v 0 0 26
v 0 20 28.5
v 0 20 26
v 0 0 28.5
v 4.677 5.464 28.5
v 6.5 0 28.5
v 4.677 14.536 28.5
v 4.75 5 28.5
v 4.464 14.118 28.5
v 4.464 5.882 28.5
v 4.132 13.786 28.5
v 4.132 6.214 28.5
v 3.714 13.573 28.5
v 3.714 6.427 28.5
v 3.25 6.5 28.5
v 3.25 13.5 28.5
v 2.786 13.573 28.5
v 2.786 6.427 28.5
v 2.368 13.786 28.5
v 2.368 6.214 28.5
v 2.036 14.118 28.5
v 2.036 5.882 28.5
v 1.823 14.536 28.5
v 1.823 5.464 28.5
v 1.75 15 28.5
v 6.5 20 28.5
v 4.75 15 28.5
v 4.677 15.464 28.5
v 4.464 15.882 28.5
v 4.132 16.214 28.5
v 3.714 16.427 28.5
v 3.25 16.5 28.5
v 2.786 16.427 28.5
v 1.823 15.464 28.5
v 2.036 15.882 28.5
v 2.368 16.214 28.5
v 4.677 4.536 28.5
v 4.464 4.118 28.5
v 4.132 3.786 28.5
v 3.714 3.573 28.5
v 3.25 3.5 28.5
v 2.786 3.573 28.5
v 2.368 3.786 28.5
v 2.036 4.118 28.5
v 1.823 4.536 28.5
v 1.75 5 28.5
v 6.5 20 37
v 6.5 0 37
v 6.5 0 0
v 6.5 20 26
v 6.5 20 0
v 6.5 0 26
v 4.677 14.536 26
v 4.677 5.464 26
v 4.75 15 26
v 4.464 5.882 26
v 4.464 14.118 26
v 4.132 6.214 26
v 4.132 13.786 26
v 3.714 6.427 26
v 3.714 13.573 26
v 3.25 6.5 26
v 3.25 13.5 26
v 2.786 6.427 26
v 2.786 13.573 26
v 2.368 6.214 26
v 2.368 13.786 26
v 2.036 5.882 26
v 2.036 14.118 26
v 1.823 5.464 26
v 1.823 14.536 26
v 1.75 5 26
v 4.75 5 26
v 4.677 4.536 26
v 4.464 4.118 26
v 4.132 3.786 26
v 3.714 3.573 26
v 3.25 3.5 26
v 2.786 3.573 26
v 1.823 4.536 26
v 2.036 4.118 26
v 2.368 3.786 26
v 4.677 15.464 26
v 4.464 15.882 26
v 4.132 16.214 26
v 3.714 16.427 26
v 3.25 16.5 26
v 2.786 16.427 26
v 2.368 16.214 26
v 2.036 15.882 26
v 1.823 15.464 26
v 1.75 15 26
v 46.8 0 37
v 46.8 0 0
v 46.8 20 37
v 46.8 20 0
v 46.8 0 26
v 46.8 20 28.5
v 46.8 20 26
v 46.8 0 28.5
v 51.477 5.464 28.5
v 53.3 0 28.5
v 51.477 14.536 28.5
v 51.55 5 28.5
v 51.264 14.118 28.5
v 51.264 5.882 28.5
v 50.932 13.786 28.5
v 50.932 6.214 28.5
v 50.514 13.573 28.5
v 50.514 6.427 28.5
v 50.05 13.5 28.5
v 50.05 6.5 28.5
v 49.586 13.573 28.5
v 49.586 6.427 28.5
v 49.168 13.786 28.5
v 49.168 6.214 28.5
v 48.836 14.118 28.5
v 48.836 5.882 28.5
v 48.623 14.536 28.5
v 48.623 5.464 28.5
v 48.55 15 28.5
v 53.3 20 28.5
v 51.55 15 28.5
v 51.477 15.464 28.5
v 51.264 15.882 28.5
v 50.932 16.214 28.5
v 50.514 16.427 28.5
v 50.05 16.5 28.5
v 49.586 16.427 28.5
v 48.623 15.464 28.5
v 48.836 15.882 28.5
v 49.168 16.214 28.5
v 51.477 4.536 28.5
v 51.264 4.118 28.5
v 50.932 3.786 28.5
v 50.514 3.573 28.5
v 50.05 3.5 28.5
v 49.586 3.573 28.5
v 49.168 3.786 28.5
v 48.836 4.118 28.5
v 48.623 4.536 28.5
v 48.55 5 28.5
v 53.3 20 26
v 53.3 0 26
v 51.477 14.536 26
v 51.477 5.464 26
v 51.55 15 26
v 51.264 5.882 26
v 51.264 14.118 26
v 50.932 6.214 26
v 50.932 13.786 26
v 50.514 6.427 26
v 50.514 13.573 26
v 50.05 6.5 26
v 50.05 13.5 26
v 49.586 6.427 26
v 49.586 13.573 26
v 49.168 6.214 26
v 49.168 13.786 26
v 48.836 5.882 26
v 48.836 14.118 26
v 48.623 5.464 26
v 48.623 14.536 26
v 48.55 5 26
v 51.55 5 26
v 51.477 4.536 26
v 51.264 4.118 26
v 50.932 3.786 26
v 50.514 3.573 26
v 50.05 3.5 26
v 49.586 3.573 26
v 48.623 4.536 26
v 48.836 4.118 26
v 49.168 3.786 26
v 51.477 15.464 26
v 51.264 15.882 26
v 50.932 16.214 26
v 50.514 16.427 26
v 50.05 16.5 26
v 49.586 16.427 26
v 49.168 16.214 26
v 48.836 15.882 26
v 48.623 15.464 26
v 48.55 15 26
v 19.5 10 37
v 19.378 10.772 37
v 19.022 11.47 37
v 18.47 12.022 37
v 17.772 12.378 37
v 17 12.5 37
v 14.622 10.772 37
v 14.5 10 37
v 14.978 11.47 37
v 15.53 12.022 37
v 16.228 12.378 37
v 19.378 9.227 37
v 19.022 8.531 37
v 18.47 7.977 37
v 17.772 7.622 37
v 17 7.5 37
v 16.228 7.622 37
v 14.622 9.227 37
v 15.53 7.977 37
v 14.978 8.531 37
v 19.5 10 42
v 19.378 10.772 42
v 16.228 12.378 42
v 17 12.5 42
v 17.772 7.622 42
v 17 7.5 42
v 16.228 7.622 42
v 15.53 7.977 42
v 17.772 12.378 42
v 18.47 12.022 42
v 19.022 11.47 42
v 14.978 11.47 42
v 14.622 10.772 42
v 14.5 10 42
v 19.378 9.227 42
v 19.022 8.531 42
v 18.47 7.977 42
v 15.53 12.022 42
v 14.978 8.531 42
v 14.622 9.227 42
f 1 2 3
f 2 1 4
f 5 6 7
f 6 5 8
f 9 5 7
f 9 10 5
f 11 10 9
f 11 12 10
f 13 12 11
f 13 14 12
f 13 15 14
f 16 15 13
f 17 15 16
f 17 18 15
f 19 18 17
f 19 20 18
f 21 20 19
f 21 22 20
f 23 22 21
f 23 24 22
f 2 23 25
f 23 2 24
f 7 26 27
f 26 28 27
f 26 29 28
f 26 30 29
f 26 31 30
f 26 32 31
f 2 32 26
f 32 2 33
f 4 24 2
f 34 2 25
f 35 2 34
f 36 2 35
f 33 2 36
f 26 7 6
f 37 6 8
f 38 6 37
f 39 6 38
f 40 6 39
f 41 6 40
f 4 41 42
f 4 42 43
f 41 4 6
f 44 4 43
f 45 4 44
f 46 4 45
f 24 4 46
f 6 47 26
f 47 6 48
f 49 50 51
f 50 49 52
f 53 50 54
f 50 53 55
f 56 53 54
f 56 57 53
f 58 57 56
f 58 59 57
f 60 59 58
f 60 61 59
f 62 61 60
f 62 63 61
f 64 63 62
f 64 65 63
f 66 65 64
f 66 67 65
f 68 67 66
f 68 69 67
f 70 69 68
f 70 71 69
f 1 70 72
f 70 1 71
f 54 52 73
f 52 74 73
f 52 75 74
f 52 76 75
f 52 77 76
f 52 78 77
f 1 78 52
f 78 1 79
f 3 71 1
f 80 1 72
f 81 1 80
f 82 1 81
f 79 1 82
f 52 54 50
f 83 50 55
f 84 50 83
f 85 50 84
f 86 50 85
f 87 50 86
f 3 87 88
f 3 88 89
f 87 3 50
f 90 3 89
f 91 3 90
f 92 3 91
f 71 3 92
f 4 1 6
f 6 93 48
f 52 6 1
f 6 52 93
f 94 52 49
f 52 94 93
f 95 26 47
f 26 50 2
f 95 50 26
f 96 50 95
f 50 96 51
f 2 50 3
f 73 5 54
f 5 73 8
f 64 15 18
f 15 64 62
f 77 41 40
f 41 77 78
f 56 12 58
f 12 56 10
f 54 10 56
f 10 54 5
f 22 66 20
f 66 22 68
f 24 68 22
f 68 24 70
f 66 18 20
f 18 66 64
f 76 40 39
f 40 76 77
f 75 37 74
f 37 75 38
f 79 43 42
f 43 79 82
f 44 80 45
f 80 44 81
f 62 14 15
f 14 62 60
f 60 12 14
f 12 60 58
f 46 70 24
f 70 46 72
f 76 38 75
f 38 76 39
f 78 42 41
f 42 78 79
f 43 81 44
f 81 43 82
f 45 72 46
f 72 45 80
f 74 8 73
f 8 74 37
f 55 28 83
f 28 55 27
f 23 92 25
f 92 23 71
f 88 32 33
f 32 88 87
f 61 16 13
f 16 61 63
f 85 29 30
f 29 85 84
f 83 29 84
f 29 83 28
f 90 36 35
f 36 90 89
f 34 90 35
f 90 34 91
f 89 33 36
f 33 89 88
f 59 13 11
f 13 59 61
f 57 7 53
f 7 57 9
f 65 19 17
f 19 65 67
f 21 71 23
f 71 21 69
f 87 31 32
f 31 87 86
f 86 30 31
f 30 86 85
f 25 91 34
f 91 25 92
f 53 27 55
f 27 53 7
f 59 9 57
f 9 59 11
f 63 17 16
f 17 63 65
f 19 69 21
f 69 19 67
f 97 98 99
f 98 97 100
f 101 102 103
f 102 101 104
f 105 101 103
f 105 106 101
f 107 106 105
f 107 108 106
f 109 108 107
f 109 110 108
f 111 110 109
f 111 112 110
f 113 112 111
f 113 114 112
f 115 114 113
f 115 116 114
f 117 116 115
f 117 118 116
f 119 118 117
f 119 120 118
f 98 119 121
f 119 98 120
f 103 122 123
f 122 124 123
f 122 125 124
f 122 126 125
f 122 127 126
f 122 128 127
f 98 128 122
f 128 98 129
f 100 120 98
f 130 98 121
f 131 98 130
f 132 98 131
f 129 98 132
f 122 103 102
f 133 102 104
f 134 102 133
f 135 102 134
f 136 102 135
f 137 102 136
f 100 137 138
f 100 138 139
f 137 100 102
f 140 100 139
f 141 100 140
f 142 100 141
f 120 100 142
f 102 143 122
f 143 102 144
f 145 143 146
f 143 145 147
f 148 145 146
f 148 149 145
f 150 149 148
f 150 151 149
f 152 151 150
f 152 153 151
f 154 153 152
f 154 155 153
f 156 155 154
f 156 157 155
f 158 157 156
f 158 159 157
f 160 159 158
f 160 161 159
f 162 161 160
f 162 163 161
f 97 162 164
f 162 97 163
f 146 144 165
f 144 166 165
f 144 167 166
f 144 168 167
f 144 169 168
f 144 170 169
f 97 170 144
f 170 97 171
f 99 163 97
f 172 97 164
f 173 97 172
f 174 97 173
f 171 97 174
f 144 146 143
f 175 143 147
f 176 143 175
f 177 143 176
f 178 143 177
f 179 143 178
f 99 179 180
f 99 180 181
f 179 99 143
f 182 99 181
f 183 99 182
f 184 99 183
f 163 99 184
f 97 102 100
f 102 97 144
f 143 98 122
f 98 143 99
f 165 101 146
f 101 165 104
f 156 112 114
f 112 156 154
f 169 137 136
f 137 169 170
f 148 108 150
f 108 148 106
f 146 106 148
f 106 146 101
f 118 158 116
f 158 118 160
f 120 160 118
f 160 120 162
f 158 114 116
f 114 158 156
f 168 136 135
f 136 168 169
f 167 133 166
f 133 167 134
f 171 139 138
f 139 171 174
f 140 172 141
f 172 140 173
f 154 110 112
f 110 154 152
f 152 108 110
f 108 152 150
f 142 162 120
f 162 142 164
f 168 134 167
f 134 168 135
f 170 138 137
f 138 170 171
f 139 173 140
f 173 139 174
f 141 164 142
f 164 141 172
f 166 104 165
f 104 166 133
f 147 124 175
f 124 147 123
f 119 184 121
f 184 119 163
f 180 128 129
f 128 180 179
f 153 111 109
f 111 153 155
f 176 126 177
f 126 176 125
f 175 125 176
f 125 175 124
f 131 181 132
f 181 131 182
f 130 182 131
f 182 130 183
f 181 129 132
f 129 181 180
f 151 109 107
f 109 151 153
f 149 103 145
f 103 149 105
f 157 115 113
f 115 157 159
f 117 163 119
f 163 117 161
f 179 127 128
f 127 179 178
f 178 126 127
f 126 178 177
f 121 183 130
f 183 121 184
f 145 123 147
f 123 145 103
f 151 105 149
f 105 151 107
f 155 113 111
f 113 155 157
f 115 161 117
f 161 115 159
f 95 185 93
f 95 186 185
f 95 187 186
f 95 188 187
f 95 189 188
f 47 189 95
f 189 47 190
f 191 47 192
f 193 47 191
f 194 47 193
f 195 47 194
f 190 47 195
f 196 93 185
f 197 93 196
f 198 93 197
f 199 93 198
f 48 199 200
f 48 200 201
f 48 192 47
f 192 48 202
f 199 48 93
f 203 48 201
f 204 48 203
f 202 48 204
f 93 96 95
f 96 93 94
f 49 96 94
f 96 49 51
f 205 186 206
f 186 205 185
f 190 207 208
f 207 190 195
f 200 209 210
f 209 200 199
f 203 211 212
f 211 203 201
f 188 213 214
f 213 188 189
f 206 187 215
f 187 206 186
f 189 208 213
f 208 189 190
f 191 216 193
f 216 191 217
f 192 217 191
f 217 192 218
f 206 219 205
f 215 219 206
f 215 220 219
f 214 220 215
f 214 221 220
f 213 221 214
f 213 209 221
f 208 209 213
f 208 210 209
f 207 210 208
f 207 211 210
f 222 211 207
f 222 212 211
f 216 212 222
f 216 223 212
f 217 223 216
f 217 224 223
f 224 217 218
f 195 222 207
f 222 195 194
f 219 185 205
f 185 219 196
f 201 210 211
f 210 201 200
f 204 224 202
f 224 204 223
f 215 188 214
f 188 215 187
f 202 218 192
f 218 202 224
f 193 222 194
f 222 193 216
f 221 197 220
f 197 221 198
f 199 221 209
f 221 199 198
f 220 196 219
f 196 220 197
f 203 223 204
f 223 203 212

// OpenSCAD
/********************
model of mg996r servo
*********************/

//dimensions of central box (excluding the pads)
//height is including the proruding neck around the shaft
length = 40.3;
width = 20;
height = 37;

//total_length = length + pad_length * 2 = 53.3

//distance from nearest wall to the motor shaft
wall_to_shaft = 10.5;

//self explanatory measuremets
hole_length = 48;
hole_width = 10;
hole_diameter = 4;

//height is from ground to bottom of pad
pad_height = 26;
//self explanatory
pad_thick = 2.5;
pad_length = 6.5;

//convexity of holes
$fn = 20;

module pad(){
    difference(){
        cube([pad_length, width, pad_thick]);
        translate([pad_length/2, width/2-hole_width/2, 0])
        cylinder(d=3,h=pad_thick);
        translate([pad_length/2, width/2+hole_width/2, 0])
        cylinder(d=3,h=pad_thick);
    }
}

module servo(){
    translate([0,0,pad_height])
    pad();
    translate([pad_length+length,0,pad_height])
    pad();
    translate([pad_length, 0, 0])
    cube([length, width, height]);
    translate([pad_length + wall_to_shaft, width/2, height])
    cylinder(h=5,d=5);
}

color([0,1,0])
servo();
